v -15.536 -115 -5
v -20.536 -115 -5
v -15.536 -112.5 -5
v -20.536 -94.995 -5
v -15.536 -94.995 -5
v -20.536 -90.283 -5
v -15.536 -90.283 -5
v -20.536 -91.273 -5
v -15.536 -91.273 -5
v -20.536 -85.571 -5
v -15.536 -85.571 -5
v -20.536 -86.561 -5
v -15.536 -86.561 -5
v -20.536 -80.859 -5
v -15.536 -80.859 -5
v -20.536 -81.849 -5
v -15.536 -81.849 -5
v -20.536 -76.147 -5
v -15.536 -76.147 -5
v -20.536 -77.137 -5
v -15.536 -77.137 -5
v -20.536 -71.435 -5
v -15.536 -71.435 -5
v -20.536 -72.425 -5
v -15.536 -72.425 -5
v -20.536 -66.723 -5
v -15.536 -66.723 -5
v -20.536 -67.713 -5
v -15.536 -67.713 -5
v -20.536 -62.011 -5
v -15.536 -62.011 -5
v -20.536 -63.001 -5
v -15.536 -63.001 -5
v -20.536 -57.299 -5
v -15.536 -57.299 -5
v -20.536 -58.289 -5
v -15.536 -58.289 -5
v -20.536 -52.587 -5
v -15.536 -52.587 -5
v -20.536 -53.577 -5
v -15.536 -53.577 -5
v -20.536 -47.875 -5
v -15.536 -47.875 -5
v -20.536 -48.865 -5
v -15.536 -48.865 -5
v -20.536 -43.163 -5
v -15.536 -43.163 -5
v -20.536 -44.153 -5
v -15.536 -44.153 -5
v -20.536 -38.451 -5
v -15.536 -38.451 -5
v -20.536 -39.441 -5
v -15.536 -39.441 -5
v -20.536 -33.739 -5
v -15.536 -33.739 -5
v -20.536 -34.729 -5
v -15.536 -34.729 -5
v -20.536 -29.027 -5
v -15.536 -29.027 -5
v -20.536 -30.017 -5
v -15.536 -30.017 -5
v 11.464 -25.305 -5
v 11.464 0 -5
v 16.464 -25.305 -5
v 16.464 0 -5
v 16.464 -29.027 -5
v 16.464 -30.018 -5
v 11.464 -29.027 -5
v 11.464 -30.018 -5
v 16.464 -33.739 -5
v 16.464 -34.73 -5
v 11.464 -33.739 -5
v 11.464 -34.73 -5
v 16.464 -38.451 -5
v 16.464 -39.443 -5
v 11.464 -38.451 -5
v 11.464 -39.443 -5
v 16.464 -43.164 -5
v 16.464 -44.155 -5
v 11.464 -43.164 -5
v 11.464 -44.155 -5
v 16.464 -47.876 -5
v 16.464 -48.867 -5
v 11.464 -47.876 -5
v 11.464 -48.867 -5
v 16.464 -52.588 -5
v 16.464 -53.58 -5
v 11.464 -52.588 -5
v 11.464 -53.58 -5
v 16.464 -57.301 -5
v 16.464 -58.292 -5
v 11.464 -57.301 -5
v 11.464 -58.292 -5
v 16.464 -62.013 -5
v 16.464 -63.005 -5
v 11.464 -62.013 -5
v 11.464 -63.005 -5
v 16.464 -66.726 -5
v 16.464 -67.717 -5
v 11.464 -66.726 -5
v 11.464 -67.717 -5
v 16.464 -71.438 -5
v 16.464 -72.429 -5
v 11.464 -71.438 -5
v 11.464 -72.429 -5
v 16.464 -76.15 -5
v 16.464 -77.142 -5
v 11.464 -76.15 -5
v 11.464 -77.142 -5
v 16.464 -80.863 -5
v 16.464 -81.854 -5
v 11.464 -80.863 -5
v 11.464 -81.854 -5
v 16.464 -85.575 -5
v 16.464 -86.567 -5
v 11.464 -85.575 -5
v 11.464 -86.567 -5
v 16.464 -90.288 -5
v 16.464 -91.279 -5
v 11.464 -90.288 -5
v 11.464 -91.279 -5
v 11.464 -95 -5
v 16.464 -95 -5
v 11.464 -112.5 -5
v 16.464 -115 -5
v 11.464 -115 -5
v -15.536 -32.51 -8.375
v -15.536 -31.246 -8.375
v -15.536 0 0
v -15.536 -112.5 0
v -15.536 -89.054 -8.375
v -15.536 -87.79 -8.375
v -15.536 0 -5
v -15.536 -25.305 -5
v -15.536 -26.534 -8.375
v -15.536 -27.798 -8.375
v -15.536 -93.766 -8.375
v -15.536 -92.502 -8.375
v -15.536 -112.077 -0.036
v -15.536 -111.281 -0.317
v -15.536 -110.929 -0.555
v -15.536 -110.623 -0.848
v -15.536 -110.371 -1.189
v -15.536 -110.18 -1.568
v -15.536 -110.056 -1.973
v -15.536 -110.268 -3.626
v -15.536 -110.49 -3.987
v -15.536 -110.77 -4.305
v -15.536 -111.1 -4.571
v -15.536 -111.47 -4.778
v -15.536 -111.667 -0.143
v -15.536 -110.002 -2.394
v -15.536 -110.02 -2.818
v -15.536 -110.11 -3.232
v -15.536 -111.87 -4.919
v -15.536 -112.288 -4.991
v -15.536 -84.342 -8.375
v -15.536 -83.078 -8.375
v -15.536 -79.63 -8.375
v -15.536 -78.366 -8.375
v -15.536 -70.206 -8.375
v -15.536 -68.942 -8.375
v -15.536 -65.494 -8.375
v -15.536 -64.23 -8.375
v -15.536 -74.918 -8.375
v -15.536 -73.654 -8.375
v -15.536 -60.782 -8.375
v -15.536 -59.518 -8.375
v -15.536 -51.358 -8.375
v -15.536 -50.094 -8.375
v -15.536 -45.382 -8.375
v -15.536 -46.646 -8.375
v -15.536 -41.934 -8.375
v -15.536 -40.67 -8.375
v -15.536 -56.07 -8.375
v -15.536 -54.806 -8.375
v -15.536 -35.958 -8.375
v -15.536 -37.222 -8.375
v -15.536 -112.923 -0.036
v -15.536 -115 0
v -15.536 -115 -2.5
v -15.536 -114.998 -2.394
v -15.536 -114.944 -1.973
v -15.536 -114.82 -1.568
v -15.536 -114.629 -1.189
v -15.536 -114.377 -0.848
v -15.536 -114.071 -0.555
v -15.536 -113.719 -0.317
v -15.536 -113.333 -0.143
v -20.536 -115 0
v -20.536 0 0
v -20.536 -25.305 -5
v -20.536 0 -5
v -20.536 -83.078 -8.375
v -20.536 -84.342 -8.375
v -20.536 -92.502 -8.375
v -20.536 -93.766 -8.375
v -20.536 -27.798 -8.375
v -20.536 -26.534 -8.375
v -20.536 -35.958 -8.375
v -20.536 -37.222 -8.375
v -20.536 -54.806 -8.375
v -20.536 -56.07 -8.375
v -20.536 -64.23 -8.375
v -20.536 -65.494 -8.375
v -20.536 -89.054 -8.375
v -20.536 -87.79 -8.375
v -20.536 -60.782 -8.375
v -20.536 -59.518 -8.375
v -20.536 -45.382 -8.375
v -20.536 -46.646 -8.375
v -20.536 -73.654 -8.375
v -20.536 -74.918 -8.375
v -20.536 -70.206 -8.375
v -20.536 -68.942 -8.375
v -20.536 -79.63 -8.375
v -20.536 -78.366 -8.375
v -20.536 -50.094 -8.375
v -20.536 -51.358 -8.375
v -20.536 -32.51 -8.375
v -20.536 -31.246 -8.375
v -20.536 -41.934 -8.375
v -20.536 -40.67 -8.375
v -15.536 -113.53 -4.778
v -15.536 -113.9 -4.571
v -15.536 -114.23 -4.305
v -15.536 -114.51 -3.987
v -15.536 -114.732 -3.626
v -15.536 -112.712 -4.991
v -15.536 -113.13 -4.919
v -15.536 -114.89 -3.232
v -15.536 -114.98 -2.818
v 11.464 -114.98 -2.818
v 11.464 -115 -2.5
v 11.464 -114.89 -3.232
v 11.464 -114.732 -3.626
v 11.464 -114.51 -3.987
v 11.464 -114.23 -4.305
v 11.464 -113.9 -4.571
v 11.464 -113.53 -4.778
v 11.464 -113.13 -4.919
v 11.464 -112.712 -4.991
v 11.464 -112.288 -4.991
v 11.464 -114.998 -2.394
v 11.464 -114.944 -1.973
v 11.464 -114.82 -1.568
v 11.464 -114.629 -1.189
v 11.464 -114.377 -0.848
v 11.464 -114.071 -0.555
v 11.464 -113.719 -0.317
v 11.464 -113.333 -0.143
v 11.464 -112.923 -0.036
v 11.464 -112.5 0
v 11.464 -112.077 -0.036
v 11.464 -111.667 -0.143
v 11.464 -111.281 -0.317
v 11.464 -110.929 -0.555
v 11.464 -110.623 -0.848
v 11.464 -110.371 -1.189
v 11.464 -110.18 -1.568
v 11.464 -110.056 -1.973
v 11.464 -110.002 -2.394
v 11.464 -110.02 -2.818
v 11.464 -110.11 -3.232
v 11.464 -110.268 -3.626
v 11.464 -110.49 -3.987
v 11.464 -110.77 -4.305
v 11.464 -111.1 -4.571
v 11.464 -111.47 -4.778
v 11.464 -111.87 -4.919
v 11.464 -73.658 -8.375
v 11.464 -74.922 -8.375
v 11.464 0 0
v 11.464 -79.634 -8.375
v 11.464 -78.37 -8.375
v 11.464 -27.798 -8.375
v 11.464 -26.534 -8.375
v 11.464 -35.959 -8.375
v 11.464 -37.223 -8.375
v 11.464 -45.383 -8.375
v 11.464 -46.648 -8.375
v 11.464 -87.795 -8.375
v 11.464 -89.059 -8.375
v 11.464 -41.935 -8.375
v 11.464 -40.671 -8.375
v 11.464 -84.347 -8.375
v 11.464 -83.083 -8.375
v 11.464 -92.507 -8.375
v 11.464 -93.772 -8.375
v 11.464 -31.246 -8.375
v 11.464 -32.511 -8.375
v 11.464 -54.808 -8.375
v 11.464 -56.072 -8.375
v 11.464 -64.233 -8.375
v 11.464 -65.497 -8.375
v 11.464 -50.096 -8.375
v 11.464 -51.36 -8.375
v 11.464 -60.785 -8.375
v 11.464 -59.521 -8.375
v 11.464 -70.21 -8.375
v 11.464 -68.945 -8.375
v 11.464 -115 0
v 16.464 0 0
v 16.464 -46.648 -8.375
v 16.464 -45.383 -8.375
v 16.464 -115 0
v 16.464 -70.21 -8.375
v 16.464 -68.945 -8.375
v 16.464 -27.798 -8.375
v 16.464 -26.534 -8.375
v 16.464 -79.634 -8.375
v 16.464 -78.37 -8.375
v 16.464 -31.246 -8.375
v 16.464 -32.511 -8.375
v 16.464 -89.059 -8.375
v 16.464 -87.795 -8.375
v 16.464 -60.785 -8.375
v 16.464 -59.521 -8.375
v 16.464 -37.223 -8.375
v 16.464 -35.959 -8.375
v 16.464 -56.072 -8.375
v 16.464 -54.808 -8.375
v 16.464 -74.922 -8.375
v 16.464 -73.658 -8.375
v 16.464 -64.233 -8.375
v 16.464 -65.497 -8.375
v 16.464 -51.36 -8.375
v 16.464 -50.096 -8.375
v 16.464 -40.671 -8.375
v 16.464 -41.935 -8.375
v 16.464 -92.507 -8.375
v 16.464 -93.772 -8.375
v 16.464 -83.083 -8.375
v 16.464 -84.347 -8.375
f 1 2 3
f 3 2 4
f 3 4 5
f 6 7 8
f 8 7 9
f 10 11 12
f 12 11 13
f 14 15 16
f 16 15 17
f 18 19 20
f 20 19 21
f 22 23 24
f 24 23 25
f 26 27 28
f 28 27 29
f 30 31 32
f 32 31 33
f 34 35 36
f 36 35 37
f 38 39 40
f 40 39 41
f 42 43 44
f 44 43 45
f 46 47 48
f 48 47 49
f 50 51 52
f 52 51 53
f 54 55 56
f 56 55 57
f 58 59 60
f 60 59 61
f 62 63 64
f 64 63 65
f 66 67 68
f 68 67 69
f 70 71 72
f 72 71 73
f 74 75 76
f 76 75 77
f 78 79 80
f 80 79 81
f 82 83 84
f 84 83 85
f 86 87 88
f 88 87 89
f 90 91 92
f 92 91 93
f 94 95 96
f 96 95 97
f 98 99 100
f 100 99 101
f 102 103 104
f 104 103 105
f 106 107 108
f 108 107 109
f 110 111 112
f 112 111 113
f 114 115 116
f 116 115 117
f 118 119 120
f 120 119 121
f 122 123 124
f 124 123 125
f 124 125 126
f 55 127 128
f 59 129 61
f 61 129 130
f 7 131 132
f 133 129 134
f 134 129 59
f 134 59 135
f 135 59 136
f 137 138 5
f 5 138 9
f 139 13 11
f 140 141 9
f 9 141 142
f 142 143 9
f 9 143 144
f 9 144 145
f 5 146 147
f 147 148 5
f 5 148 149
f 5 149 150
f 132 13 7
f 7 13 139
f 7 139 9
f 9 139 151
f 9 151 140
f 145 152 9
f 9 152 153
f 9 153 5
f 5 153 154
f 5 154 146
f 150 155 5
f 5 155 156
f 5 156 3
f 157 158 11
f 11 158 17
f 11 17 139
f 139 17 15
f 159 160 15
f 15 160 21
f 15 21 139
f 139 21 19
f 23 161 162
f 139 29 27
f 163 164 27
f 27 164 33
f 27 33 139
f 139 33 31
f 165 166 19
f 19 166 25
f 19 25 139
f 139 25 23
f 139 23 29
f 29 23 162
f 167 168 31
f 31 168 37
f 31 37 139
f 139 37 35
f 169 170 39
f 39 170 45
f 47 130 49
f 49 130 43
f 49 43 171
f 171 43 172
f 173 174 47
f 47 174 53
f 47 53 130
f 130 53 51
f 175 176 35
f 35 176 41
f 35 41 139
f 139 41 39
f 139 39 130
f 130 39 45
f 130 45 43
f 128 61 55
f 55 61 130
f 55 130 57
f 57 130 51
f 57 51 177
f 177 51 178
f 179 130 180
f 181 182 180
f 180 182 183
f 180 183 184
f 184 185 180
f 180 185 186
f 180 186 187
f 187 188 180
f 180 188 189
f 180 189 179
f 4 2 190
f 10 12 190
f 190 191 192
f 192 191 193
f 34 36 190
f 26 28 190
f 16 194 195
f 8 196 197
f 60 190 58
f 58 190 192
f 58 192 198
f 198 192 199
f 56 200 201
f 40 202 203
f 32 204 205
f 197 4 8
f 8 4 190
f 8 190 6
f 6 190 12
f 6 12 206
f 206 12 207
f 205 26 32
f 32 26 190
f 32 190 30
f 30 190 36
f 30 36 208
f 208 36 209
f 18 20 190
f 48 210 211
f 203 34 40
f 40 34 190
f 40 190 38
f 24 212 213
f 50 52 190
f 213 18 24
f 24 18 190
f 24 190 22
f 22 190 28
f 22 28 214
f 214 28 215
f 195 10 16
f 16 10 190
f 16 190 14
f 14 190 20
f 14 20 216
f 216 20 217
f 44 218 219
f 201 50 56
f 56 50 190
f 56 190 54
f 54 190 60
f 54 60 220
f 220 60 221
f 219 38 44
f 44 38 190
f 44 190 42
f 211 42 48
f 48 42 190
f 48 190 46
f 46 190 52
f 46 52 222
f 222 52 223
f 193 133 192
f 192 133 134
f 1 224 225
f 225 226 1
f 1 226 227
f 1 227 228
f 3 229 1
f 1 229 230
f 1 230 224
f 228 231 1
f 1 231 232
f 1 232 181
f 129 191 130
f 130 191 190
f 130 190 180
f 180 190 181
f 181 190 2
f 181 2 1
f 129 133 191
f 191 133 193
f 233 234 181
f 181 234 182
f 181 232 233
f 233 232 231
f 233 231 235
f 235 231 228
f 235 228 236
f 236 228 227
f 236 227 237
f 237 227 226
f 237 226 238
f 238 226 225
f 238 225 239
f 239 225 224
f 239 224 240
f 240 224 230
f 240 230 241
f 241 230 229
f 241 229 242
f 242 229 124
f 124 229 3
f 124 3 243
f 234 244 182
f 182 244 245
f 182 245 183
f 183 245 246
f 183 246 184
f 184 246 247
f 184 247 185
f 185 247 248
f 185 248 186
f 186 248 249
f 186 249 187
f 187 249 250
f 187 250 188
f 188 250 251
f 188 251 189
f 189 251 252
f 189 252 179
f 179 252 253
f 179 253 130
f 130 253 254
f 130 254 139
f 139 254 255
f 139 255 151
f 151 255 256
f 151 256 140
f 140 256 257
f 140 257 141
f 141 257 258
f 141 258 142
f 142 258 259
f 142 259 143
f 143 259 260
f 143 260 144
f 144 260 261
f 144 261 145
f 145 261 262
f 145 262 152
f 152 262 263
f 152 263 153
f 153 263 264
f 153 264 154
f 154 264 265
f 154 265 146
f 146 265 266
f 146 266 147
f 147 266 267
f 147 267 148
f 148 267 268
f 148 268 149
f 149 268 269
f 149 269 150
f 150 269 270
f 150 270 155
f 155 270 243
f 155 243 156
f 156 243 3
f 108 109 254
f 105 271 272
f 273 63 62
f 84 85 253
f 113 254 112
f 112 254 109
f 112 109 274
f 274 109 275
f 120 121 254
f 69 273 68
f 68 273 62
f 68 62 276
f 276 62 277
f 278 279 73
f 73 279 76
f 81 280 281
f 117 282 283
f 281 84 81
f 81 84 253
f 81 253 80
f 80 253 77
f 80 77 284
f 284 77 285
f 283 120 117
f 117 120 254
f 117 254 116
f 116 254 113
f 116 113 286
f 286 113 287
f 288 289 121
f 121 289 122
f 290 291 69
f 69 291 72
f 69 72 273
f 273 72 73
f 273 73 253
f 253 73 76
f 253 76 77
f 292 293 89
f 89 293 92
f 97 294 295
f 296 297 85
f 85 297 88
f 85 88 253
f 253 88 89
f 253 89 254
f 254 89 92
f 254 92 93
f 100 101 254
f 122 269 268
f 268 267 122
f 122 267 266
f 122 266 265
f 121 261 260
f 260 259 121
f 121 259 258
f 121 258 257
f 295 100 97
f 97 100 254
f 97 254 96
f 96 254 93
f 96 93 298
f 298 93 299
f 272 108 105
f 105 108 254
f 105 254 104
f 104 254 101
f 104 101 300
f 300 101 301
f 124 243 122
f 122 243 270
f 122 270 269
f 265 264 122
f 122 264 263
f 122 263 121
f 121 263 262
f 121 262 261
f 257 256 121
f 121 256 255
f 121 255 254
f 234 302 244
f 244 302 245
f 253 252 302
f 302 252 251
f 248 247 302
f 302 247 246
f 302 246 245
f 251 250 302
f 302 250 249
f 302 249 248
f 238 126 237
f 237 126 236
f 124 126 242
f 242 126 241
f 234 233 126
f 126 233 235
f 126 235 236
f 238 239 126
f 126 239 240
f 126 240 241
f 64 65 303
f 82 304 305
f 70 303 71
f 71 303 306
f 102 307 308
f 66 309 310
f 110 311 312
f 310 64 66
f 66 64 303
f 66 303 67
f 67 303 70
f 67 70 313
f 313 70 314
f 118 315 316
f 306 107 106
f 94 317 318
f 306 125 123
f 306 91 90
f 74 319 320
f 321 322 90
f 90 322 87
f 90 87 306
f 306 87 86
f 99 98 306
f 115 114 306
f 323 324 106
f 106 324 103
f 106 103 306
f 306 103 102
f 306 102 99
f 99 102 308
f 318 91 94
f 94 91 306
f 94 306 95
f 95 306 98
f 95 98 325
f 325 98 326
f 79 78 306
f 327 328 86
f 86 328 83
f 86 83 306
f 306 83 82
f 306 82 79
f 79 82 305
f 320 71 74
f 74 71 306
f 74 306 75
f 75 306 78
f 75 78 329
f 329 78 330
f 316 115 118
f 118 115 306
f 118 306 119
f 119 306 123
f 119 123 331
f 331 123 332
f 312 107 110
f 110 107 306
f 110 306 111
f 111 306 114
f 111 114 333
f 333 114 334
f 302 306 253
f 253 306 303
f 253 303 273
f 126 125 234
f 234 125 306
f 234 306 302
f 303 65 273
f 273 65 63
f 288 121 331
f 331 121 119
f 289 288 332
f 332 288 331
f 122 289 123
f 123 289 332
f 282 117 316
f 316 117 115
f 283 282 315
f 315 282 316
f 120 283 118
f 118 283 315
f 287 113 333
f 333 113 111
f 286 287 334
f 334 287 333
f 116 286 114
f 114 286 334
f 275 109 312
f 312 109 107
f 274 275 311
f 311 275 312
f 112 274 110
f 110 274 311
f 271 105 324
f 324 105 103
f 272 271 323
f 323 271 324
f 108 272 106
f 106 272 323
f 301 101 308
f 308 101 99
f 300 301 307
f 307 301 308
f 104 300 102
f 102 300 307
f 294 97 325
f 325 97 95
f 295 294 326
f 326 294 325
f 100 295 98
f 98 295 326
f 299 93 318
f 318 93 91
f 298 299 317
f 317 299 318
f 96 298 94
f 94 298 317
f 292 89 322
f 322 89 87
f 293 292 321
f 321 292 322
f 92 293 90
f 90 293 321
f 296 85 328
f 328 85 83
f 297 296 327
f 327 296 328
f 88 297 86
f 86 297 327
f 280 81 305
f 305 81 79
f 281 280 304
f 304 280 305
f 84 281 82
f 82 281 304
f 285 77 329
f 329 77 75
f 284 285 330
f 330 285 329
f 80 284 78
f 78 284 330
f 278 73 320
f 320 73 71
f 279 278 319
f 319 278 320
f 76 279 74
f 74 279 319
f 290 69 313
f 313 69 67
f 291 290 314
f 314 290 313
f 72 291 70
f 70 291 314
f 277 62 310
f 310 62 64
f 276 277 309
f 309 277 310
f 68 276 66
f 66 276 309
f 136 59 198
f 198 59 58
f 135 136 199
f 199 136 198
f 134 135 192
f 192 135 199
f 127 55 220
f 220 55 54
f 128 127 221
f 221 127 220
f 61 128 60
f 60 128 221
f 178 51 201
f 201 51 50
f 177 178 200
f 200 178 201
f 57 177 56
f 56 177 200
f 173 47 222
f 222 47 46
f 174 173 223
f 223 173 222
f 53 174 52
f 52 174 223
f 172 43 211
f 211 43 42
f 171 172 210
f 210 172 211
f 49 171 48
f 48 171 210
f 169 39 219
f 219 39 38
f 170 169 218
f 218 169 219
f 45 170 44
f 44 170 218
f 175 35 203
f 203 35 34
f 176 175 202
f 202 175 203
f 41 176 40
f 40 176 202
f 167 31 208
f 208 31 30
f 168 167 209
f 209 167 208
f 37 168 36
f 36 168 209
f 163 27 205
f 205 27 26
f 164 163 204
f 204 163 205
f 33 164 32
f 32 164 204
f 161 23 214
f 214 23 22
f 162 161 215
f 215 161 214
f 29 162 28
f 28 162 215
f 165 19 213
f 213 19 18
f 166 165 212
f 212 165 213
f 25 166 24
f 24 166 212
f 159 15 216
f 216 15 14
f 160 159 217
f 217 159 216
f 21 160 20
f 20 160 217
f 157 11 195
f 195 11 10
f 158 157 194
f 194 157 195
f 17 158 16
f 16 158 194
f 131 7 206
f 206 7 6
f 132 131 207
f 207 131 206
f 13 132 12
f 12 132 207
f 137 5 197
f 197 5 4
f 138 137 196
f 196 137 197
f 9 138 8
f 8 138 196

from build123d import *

# Parameters (mm, degrees)
SKETCH_1_W             = 5
SKETCH_1_H             = 5
EXTRUDE_2_DEPTH        = 115
EXTRUDE_2_2_DEPTH      = 115
SKETCH_2_R             = 2.5
EXTRUDE_3_DEPTH        = 27
EXTRUDE_5_DEPTH        = 5
PATTERN_LINEAR_1_COUNT = 15
PATTERN_LINEAR_1_PITCH = 4.71238898
EXTRUDE_6_DEPTH        = 5
PATTERN_LINEAR_2_COUNT = 15
PATTERN_LINEAR_2_PITCH = 4.712


with BuildPart() as part:
    # ｽｹｯﾁ1 → ﾎﾞｽ - 押し出し2 (new body)
    with BuildSketch(Plane(origin=(0, 0, 0), x_dir=(1, 0, 0), z_dir=(0, 1, 0))):
        with Locations((-18.035714286, 2.5)):
            Rectangle(SKETCH_1_W, SKETCH_1_H)
    extrude(amount=-EXTRUDE_2_DEPTH)



with BuildPart() as body_2:
    # ｽｹｯﾁ1 → Extrude 2 2 (new body)
    with BuildSketch(Plane(origin=(0, 0, 0), x_dir=(1, 0, 0), z_dir=(0, 1, 0))):
        with Locations((13.964285714, 2.5)):
            Rectangle(SKETCH_1_W, SKETCH_1_H)
    extrude(amount=-EXTRUDE_2_2_DEPTH)


with BuildPart() as part_1:
    add(part.part)

    add(body_2.part)  # ﾎﾞｽ - 押し出し3 merges body 2
    # ｽｹｯﾁ2 → ﾎﾞｽ - 押し出し3 (add)
    with BuildSketch(Plane(origin=(-15.535714286, 0, 0), x_dir=(0, 0, -1), z_dir=(1, 0, 0))):
        with Locations(Location((2.5, -112.5, 0), (0, 0, 180))):
            Circle(SKETCH_2_R)
    extrude(amount=EXTRUDE_3_DEPTH)

    # ｽｹｯﾁ3 → ﾎﾞｽ - 押し出し5 (add)
    with BuildSketch(Plane(origin=(16.464285714, 0, 0), x_dir=(0, 0, -1), z_dir=(1, 0, 0))):
        Polygon((5, -91.278917131), (8.375, -92.507316672), (8.375, -93.771600459), (5, -95), align=None)
    extrude_5 = extrude(amount=-EXTRUDE_5_DEPTH)

    # 直線ﾊﾟﾀｰﾝ1: ﾎﾞｽ - 押し出し5 ×15
    with Locations(*[(0, i * PATTERN_LINEAR_1_PITCH, 0) for i in range(1, PATTERN_LINEAR_1_COUNT)]):
        add(extrude_5)

    # ｽｹｯﾁ4 → ﾎﾞｽ - 押し出し6 (add)
    with BuildSketch(Plane.ZY.offset(20.535714286)):
        Polygon((-5, -25.305471406), (-8.375, -26.533870947), (-8.375, -27.798154734), (-5, -29.026554275), align=None)
    extrude_6 = extrude(amount=-EXTRUDE_6_DEPTH)

    # 直線ﾊﾟﾀｰﾝ2: ﾎﾞｽ - 押し出し6 ×15
    with Locations(*[(0, -i * PATTERN_LINEAR_2_PITCH, 0) for i in range(1, PATTERN_LINEAR_2_COUNT)]):
        add(extrude_6)


solid = part_1.part
